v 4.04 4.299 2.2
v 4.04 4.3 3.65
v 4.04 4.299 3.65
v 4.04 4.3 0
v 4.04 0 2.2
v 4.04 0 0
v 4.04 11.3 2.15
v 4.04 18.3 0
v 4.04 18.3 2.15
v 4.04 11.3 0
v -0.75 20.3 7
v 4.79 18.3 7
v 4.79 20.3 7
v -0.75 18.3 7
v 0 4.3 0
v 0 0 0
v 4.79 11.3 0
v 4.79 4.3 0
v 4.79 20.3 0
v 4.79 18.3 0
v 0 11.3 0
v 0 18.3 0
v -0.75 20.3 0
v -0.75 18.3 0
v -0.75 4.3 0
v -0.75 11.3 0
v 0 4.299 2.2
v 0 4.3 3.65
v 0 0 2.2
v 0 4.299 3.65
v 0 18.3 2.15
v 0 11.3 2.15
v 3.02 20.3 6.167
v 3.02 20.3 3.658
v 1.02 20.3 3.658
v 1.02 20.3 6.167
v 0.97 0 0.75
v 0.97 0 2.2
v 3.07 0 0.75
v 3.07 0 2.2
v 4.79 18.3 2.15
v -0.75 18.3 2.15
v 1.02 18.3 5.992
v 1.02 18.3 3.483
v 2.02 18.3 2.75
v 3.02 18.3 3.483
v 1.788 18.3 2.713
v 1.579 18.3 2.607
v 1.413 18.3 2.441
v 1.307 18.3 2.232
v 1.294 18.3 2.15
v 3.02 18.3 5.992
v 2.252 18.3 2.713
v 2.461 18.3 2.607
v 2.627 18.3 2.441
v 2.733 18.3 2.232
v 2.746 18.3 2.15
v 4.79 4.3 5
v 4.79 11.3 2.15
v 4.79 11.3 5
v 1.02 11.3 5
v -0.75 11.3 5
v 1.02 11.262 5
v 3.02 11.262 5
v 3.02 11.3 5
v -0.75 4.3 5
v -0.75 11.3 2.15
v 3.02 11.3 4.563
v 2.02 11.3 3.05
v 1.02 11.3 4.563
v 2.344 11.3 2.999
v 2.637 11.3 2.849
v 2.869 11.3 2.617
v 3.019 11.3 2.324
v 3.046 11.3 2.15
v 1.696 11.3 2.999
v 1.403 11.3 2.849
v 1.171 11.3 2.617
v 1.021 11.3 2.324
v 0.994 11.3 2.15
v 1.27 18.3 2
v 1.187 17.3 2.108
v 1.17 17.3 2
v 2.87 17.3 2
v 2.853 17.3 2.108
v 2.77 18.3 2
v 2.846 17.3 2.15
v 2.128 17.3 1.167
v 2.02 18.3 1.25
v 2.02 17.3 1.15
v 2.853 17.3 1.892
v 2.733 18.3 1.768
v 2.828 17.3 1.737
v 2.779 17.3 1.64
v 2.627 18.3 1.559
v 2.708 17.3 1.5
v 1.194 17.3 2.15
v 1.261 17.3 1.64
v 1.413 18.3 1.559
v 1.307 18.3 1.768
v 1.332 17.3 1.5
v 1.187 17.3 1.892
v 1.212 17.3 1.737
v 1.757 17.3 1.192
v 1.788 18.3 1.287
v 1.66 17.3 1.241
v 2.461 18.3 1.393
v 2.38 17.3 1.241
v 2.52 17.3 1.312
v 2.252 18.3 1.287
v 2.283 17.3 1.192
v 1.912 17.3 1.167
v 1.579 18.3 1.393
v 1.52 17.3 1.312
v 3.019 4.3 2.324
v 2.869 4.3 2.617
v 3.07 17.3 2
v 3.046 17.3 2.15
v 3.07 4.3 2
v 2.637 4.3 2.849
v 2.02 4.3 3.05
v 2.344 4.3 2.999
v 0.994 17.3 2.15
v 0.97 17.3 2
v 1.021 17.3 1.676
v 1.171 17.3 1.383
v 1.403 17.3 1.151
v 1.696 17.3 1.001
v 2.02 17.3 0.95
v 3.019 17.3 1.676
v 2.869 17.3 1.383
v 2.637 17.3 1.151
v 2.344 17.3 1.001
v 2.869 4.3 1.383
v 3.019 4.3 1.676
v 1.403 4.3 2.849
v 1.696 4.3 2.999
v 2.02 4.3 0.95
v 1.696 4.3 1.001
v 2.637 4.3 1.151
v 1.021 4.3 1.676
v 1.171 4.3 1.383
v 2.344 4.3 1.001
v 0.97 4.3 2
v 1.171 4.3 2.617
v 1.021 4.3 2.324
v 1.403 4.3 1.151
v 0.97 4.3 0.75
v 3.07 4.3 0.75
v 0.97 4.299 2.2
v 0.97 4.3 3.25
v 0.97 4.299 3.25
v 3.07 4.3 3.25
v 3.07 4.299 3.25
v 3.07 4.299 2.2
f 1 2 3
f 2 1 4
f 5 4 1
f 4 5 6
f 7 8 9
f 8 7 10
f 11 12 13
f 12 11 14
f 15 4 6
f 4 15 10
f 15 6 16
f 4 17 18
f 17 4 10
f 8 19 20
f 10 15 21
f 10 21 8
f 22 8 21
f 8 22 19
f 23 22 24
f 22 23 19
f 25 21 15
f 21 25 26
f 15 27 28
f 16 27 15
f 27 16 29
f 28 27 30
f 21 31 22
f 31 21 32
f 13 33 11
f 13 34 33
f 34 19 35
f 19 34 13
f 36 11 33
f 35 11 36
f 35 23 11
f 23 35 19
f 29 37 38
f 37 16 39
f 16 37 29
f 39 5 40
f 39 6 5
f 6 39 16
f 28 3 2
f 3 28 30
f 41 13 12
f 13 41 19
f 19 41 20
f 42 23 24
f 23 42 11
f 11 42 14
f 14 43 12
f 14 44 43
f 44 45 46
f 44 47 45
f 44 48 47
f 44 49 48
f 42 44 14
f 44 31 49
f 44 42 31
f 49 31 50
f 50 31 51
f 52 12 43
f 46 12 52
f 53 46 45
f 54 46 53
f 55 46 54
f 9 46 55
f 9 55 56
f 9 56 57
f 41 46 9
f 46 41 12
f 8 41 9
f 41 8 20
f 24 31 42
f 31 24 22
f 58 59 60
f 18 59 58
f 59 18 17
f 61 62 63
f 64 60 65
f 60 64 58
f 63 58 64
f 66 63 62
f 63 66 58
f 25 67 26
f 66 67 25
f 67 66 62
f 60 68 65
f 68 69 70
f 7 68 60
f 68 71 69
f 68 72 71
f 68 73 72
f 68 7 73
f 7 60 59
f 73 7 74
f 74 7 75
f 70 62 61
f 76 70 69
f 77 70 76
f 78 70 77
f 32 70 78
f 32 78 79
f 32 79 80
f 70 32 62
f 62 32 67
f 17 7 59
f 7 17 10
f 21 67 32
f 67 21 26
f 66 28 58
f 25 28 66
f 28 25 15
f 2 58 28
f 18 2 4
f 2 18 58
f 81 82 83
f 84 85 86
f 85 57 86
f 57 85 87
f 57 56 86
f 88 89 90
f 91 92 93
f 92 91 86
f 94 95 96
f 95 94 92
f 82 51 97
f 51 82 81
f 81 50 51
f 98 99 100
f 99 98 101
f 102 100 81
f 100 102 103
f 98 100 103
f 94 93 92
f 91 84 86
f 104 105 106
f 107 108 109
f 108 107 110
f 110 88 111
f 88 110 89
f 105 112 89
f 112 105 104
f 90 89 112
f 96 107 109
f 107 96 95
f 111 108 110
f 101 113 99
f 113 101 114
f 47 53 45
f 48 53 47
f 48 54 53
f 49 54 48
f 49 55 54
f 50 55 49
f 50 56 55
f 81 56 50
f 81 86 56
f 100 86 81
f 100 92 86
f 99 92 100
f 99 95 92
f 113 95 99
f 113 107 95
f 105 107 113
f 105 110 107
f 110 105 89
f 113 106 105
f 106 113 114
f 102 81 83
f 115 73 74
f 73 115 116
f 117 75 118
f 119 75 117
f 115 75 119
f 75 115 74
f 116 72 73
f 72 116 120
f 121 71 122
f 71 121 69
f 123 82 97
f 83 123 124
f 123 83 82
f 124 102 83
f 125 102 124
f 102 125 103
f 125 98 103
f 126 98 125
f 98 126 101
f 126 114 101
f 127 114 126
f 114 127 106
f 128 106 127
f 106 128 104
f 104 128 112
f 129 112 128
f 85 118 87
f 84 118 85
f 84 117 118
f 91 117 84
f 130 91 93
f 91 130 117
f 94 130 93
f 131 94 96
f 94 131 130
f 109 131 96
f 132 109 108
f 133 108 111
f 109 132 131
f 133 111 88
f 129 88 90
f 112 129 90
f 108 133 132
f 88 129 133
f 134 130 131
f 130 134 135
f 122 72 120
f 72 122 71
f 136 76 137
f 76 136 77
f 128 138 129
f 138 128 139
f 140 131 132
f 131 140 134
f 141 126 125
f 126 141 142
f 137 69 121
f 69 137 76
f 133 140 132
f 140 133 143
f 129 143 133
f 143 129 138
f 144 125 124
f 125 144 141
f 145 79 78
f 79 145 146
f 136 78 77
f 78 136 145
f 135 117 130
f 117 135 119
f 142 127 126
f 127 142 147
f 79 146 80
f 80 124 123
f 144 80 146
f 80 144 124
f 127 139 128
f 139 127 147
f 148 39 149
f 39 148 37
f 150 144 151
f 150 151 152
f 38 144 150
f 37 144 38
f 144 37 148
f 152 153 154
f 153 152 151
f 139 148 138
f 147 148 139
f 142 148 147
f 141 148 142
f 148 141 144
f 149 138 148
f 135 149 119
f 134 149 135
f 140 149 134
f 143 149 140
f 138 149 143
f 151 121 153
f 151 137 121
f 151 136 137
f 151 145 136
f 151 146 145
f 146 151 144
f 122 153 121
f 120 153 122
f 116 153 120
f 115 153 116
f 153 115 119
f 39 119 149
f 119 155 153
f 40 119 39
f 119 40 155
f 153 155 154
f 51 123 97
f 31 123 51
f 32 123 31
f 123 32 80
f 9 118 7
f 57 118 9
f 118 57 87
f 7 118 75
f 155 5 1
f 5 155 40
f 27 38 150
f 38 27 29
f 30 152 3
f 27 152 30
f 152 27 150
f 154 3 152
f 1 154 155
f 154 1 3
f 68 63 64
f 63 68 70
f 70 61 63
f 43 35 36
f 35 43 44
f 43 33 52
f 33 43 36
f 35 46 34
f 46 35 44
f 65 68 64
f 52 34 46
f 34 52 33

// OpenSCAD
$fn=20;
/*
  Pogo Pin Serial Adaptor (Customisable)
  Author: Brian Khuu 2019
  
  This is similar to https://hackaday.com/2017/08/04/pogo-pin-serial-adapter-thing/
  But is fully 3D printed without need for PCB. This may be useful for Arduino serial adaptors.
  
  I used P100-E2 probes for this
*/

// Designed For Printer Nozzle
printer_nozzle=0.4;

// Base Thickness
base_thickness = 0.1;

/* probe pin spec */
ppext = 6.8; // Probe extention length
ppbody = 14; // Body of the probe
ppdia = 1.5; // probe pin diameter

ppdiatol = 0.6; // tolerance for fitting
ppinset = 2.5;

ppdiaoutset = ppext-ppinset; // How far to space out to allow for side fits
echo(ppdiaoutset);

/* Castellated Module Pin Spacing and count */

// Pin Count
ppc = 1;

// Pin Spacing
pps = 2.54;

// PCB Thickness
pcb_thickness = 1.1; // 1mm Open Log Clone

// PCB Probe Offset
pcb_probe_offset = 1.3;

/* Clip */
clip_tab = 5; // Clip tab to more easily open the clip

/* pcb */
pcb_h = 2; // pcb thickness

/* calc */
boxx = ppc * pps + ppdia;
boxy = 2 + ppbody + ppdiaoutset;
boxh = base_thickness+pcb_probe_offset+ppdiatol+5;

module probe_pin_req()
{
  inset=0;
  translate([0,0,-ppbody])
  union()
  {
    translate([0,0,0])
      cylinder(r1=(ppdia)/2,r2=(ppdia+ppdiatol)/2, h=3);
    translate([0,0,1])
      cylinder(r=(ppdia+ppdiatol)/2, h=ppbody+ppext+1);
    %color("gold") cylinder(r=ppdia/2, h=ppbody);
    %color("silver") translate([0,0,ppbody])
      cylinder(r=ppdia/2, r2=0, h=ppext);
  }
}

module openlog_clone_programmer_jig()
{
  difference()
  {  
    /* Bulk */
    union()
    {
      difference()
      {
        cube([boxx,boxy,boxh]);
        translate([-5, 0, base_thickness+pcb_probe_offset+ppdia*1.5]) 
          cube([ppc * pps+10,ppbody, 5]);
      }
      translate([-(ppdia)/2, ppdiaoutset+7+ppbody/2, 0]) 
        cube([boxx+(ppdia),boxy-(ppdiaoutset+7+ppbody/2), boxh]);
      translate([-(ppdia)/2, ppdiaoutset, 0]) 
        cube([boxx+(ppdia),7, 5]);
    }

    /* Probe Access Cutout */
    translate([-5, ppdiaoutset+7, base_thickness+pcb_probe_offset+ppdia/2]) 
      cube([ppc * pps+10,ppbody/2, boxh]);
      
    /* Module Cutout */
    translate([0, -0.001, base_thickness+ppdia+ppdiatol]) 
      cube([boxx,ppdiaoutset, boxh]);
      
    /* Probe */
    for ( xi = [0 : 1 : ppc-1] )
    {
      translate([ppdia/2+pps/2+pps*xi, 0, base_thickness])
      union()
      {
        translate([0, ppdiaoutset, pcb_probe_offset+ppdiatol])
          rotate([90,0,0])
          probe_pin_req();
        
        translate([0, ppdiaoutset, pcb_probe_offset+ppdiatol])
          rotate([180,0,0])
            translate([0, (ppdiaoutset)/2, 0])
              cube([ppdia+ppdiatol,(ppdiaoutset),ppdia+1], center=true);
      }
    }
    
    /* Wire Guide (To solder onto the probe) */
    for ( xii = [0 : 1 : ppc-1] )
    {
      translate([ppdia/2+pps/2+pps*xii, boxy+1, base_thickness+ppdia+1.5+pcb_probe_offset+ppdiatol])
        rotate([95,0,0])
          cube([2,2.5,20],center=true);
    }
  }
}

openlog_clone_programmer_jig();
